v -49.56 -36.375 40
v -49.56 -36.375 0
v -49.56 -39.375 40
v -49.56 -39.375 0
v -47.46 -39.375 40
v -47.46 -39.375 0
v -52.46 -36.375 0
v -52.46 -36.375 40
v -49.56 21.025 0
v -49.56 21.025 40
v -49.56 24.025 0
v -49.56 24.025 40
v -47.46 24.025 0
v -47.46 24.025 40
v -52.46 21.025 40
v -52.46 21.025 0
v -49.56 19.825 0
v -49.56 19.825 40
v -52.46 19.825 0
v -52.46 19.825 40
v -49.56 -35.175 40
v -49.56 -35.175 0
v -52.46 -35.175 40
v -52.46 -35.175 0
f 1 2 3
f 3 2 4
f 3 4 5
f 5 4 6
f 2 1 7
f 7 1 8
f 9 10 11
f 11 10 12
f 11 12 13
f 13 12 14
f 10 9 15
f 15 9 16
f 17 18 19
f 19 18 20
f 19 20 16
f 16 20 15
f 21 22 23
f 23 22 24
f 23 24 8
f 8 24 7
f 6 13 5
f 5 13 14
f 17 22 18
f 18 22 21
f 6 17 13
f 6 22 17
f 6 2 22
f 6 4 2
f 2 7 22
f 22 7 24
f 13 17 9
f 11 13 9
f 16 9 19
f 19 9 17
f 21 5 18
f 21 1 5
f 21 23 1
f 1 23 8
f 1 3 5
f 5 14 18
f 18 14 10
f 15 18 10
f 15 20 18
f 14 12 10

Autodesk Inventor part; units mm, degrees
ref_plane "YZ Plane" through (0, 0, 0) normal (1, 0, 0) x (0, 1, 0)
ref_plane "XZ Plane" through (0, 0, 0) normal (0, 1, 0) x (-1, 0, 0)
ref_plane "XY Plane" through (0, 0, 0) normal (0, 0, 1) x (1, 0, 0)
sketch "Sketch1" plane through (0, 0, 0) normal (0, 0, 1) x (1, 0, 0)
  line L0 (-49.56, 19.825) -> (-47.46, 19.825)
  line L1 (-47.46, 19.825) -> (-47.46, -35.175)
  line L2 (-47.46, -35.175) -> (-49.56, -35.175)
  line L3 (-49.56, -35.175) -> (-49.56, 19.825)
  point P0 (0, 0)
  dimension "d0" = 2.1
  dimension "d1" = 55
extrude "Extrusion1" add sketch "Sketch1" along normal blind 40
sketch "Sketch2" plane through (-47.46, -35.175, 0) normal (1, 0, 0) x (0, 0, -1)
  line L0 (-40, 55) -> (0, 55)
  line L1 (0, 55) -> (0, 56.2)
  line L2 (0, 56.2) -> (-40, 56.2)
  line L3 (-40, 56.2) -> (-40, 55)
  line L4 (0, 0) -> (-40, 0)
  line L5 (-40, 0) -> (-40, -1.2)
  line L6 (-40, -1.2) -> (0, -1.2)
  line L7 (0, -1.2) -> (0, 0)
  line L8 (0, 55) -> (0, 0) projected
  line L9 (-40, 0) -> (-40, 55) projected
  point P0 (0, 35.175)
  dimension "d4" = 1.2
  dimension "d5" = 1.2
extrude "Extrusion2" add sketch "Sketch2" against normal blind 5 contours L3 L2 L1 L0 | L4 L7 L6 L5
sketch "Sketch3" plane through (-47.46, 21.025, 40) normal (0, 1, 0) x (1, 0, 0)
  line L0 (0, 40) -> (-2.1, 40)
  line L1 (-2.1, 40) -> (-2.1, 0)
  line L2 (-2.1, 0) -> (0, 0)
  line L3 (0, 0) -> (0, 40)
  point P0 (47.46, 40)
extrude "Extrusion3" add sketch "Sketch3" along normal blind 3
sketch "Sketch4" plane through (-47.46, -36.375, 0) normal (0, -1, 0) x (1, 0, 0)
  line L0 (0, 40) -> (-2.1, 40)
  line L1 (-2.1, 40) -> (-2.1, 0)
  line L2 (-2.1, 0) -> (0, 0)
  line L3 (0, 0) -> (0, 40)
  point P0 (47.46, 0)
extrude "Extrusion4" add sketch "Sketch4" along normal blind 3
properties part number "40mm Side v1"
